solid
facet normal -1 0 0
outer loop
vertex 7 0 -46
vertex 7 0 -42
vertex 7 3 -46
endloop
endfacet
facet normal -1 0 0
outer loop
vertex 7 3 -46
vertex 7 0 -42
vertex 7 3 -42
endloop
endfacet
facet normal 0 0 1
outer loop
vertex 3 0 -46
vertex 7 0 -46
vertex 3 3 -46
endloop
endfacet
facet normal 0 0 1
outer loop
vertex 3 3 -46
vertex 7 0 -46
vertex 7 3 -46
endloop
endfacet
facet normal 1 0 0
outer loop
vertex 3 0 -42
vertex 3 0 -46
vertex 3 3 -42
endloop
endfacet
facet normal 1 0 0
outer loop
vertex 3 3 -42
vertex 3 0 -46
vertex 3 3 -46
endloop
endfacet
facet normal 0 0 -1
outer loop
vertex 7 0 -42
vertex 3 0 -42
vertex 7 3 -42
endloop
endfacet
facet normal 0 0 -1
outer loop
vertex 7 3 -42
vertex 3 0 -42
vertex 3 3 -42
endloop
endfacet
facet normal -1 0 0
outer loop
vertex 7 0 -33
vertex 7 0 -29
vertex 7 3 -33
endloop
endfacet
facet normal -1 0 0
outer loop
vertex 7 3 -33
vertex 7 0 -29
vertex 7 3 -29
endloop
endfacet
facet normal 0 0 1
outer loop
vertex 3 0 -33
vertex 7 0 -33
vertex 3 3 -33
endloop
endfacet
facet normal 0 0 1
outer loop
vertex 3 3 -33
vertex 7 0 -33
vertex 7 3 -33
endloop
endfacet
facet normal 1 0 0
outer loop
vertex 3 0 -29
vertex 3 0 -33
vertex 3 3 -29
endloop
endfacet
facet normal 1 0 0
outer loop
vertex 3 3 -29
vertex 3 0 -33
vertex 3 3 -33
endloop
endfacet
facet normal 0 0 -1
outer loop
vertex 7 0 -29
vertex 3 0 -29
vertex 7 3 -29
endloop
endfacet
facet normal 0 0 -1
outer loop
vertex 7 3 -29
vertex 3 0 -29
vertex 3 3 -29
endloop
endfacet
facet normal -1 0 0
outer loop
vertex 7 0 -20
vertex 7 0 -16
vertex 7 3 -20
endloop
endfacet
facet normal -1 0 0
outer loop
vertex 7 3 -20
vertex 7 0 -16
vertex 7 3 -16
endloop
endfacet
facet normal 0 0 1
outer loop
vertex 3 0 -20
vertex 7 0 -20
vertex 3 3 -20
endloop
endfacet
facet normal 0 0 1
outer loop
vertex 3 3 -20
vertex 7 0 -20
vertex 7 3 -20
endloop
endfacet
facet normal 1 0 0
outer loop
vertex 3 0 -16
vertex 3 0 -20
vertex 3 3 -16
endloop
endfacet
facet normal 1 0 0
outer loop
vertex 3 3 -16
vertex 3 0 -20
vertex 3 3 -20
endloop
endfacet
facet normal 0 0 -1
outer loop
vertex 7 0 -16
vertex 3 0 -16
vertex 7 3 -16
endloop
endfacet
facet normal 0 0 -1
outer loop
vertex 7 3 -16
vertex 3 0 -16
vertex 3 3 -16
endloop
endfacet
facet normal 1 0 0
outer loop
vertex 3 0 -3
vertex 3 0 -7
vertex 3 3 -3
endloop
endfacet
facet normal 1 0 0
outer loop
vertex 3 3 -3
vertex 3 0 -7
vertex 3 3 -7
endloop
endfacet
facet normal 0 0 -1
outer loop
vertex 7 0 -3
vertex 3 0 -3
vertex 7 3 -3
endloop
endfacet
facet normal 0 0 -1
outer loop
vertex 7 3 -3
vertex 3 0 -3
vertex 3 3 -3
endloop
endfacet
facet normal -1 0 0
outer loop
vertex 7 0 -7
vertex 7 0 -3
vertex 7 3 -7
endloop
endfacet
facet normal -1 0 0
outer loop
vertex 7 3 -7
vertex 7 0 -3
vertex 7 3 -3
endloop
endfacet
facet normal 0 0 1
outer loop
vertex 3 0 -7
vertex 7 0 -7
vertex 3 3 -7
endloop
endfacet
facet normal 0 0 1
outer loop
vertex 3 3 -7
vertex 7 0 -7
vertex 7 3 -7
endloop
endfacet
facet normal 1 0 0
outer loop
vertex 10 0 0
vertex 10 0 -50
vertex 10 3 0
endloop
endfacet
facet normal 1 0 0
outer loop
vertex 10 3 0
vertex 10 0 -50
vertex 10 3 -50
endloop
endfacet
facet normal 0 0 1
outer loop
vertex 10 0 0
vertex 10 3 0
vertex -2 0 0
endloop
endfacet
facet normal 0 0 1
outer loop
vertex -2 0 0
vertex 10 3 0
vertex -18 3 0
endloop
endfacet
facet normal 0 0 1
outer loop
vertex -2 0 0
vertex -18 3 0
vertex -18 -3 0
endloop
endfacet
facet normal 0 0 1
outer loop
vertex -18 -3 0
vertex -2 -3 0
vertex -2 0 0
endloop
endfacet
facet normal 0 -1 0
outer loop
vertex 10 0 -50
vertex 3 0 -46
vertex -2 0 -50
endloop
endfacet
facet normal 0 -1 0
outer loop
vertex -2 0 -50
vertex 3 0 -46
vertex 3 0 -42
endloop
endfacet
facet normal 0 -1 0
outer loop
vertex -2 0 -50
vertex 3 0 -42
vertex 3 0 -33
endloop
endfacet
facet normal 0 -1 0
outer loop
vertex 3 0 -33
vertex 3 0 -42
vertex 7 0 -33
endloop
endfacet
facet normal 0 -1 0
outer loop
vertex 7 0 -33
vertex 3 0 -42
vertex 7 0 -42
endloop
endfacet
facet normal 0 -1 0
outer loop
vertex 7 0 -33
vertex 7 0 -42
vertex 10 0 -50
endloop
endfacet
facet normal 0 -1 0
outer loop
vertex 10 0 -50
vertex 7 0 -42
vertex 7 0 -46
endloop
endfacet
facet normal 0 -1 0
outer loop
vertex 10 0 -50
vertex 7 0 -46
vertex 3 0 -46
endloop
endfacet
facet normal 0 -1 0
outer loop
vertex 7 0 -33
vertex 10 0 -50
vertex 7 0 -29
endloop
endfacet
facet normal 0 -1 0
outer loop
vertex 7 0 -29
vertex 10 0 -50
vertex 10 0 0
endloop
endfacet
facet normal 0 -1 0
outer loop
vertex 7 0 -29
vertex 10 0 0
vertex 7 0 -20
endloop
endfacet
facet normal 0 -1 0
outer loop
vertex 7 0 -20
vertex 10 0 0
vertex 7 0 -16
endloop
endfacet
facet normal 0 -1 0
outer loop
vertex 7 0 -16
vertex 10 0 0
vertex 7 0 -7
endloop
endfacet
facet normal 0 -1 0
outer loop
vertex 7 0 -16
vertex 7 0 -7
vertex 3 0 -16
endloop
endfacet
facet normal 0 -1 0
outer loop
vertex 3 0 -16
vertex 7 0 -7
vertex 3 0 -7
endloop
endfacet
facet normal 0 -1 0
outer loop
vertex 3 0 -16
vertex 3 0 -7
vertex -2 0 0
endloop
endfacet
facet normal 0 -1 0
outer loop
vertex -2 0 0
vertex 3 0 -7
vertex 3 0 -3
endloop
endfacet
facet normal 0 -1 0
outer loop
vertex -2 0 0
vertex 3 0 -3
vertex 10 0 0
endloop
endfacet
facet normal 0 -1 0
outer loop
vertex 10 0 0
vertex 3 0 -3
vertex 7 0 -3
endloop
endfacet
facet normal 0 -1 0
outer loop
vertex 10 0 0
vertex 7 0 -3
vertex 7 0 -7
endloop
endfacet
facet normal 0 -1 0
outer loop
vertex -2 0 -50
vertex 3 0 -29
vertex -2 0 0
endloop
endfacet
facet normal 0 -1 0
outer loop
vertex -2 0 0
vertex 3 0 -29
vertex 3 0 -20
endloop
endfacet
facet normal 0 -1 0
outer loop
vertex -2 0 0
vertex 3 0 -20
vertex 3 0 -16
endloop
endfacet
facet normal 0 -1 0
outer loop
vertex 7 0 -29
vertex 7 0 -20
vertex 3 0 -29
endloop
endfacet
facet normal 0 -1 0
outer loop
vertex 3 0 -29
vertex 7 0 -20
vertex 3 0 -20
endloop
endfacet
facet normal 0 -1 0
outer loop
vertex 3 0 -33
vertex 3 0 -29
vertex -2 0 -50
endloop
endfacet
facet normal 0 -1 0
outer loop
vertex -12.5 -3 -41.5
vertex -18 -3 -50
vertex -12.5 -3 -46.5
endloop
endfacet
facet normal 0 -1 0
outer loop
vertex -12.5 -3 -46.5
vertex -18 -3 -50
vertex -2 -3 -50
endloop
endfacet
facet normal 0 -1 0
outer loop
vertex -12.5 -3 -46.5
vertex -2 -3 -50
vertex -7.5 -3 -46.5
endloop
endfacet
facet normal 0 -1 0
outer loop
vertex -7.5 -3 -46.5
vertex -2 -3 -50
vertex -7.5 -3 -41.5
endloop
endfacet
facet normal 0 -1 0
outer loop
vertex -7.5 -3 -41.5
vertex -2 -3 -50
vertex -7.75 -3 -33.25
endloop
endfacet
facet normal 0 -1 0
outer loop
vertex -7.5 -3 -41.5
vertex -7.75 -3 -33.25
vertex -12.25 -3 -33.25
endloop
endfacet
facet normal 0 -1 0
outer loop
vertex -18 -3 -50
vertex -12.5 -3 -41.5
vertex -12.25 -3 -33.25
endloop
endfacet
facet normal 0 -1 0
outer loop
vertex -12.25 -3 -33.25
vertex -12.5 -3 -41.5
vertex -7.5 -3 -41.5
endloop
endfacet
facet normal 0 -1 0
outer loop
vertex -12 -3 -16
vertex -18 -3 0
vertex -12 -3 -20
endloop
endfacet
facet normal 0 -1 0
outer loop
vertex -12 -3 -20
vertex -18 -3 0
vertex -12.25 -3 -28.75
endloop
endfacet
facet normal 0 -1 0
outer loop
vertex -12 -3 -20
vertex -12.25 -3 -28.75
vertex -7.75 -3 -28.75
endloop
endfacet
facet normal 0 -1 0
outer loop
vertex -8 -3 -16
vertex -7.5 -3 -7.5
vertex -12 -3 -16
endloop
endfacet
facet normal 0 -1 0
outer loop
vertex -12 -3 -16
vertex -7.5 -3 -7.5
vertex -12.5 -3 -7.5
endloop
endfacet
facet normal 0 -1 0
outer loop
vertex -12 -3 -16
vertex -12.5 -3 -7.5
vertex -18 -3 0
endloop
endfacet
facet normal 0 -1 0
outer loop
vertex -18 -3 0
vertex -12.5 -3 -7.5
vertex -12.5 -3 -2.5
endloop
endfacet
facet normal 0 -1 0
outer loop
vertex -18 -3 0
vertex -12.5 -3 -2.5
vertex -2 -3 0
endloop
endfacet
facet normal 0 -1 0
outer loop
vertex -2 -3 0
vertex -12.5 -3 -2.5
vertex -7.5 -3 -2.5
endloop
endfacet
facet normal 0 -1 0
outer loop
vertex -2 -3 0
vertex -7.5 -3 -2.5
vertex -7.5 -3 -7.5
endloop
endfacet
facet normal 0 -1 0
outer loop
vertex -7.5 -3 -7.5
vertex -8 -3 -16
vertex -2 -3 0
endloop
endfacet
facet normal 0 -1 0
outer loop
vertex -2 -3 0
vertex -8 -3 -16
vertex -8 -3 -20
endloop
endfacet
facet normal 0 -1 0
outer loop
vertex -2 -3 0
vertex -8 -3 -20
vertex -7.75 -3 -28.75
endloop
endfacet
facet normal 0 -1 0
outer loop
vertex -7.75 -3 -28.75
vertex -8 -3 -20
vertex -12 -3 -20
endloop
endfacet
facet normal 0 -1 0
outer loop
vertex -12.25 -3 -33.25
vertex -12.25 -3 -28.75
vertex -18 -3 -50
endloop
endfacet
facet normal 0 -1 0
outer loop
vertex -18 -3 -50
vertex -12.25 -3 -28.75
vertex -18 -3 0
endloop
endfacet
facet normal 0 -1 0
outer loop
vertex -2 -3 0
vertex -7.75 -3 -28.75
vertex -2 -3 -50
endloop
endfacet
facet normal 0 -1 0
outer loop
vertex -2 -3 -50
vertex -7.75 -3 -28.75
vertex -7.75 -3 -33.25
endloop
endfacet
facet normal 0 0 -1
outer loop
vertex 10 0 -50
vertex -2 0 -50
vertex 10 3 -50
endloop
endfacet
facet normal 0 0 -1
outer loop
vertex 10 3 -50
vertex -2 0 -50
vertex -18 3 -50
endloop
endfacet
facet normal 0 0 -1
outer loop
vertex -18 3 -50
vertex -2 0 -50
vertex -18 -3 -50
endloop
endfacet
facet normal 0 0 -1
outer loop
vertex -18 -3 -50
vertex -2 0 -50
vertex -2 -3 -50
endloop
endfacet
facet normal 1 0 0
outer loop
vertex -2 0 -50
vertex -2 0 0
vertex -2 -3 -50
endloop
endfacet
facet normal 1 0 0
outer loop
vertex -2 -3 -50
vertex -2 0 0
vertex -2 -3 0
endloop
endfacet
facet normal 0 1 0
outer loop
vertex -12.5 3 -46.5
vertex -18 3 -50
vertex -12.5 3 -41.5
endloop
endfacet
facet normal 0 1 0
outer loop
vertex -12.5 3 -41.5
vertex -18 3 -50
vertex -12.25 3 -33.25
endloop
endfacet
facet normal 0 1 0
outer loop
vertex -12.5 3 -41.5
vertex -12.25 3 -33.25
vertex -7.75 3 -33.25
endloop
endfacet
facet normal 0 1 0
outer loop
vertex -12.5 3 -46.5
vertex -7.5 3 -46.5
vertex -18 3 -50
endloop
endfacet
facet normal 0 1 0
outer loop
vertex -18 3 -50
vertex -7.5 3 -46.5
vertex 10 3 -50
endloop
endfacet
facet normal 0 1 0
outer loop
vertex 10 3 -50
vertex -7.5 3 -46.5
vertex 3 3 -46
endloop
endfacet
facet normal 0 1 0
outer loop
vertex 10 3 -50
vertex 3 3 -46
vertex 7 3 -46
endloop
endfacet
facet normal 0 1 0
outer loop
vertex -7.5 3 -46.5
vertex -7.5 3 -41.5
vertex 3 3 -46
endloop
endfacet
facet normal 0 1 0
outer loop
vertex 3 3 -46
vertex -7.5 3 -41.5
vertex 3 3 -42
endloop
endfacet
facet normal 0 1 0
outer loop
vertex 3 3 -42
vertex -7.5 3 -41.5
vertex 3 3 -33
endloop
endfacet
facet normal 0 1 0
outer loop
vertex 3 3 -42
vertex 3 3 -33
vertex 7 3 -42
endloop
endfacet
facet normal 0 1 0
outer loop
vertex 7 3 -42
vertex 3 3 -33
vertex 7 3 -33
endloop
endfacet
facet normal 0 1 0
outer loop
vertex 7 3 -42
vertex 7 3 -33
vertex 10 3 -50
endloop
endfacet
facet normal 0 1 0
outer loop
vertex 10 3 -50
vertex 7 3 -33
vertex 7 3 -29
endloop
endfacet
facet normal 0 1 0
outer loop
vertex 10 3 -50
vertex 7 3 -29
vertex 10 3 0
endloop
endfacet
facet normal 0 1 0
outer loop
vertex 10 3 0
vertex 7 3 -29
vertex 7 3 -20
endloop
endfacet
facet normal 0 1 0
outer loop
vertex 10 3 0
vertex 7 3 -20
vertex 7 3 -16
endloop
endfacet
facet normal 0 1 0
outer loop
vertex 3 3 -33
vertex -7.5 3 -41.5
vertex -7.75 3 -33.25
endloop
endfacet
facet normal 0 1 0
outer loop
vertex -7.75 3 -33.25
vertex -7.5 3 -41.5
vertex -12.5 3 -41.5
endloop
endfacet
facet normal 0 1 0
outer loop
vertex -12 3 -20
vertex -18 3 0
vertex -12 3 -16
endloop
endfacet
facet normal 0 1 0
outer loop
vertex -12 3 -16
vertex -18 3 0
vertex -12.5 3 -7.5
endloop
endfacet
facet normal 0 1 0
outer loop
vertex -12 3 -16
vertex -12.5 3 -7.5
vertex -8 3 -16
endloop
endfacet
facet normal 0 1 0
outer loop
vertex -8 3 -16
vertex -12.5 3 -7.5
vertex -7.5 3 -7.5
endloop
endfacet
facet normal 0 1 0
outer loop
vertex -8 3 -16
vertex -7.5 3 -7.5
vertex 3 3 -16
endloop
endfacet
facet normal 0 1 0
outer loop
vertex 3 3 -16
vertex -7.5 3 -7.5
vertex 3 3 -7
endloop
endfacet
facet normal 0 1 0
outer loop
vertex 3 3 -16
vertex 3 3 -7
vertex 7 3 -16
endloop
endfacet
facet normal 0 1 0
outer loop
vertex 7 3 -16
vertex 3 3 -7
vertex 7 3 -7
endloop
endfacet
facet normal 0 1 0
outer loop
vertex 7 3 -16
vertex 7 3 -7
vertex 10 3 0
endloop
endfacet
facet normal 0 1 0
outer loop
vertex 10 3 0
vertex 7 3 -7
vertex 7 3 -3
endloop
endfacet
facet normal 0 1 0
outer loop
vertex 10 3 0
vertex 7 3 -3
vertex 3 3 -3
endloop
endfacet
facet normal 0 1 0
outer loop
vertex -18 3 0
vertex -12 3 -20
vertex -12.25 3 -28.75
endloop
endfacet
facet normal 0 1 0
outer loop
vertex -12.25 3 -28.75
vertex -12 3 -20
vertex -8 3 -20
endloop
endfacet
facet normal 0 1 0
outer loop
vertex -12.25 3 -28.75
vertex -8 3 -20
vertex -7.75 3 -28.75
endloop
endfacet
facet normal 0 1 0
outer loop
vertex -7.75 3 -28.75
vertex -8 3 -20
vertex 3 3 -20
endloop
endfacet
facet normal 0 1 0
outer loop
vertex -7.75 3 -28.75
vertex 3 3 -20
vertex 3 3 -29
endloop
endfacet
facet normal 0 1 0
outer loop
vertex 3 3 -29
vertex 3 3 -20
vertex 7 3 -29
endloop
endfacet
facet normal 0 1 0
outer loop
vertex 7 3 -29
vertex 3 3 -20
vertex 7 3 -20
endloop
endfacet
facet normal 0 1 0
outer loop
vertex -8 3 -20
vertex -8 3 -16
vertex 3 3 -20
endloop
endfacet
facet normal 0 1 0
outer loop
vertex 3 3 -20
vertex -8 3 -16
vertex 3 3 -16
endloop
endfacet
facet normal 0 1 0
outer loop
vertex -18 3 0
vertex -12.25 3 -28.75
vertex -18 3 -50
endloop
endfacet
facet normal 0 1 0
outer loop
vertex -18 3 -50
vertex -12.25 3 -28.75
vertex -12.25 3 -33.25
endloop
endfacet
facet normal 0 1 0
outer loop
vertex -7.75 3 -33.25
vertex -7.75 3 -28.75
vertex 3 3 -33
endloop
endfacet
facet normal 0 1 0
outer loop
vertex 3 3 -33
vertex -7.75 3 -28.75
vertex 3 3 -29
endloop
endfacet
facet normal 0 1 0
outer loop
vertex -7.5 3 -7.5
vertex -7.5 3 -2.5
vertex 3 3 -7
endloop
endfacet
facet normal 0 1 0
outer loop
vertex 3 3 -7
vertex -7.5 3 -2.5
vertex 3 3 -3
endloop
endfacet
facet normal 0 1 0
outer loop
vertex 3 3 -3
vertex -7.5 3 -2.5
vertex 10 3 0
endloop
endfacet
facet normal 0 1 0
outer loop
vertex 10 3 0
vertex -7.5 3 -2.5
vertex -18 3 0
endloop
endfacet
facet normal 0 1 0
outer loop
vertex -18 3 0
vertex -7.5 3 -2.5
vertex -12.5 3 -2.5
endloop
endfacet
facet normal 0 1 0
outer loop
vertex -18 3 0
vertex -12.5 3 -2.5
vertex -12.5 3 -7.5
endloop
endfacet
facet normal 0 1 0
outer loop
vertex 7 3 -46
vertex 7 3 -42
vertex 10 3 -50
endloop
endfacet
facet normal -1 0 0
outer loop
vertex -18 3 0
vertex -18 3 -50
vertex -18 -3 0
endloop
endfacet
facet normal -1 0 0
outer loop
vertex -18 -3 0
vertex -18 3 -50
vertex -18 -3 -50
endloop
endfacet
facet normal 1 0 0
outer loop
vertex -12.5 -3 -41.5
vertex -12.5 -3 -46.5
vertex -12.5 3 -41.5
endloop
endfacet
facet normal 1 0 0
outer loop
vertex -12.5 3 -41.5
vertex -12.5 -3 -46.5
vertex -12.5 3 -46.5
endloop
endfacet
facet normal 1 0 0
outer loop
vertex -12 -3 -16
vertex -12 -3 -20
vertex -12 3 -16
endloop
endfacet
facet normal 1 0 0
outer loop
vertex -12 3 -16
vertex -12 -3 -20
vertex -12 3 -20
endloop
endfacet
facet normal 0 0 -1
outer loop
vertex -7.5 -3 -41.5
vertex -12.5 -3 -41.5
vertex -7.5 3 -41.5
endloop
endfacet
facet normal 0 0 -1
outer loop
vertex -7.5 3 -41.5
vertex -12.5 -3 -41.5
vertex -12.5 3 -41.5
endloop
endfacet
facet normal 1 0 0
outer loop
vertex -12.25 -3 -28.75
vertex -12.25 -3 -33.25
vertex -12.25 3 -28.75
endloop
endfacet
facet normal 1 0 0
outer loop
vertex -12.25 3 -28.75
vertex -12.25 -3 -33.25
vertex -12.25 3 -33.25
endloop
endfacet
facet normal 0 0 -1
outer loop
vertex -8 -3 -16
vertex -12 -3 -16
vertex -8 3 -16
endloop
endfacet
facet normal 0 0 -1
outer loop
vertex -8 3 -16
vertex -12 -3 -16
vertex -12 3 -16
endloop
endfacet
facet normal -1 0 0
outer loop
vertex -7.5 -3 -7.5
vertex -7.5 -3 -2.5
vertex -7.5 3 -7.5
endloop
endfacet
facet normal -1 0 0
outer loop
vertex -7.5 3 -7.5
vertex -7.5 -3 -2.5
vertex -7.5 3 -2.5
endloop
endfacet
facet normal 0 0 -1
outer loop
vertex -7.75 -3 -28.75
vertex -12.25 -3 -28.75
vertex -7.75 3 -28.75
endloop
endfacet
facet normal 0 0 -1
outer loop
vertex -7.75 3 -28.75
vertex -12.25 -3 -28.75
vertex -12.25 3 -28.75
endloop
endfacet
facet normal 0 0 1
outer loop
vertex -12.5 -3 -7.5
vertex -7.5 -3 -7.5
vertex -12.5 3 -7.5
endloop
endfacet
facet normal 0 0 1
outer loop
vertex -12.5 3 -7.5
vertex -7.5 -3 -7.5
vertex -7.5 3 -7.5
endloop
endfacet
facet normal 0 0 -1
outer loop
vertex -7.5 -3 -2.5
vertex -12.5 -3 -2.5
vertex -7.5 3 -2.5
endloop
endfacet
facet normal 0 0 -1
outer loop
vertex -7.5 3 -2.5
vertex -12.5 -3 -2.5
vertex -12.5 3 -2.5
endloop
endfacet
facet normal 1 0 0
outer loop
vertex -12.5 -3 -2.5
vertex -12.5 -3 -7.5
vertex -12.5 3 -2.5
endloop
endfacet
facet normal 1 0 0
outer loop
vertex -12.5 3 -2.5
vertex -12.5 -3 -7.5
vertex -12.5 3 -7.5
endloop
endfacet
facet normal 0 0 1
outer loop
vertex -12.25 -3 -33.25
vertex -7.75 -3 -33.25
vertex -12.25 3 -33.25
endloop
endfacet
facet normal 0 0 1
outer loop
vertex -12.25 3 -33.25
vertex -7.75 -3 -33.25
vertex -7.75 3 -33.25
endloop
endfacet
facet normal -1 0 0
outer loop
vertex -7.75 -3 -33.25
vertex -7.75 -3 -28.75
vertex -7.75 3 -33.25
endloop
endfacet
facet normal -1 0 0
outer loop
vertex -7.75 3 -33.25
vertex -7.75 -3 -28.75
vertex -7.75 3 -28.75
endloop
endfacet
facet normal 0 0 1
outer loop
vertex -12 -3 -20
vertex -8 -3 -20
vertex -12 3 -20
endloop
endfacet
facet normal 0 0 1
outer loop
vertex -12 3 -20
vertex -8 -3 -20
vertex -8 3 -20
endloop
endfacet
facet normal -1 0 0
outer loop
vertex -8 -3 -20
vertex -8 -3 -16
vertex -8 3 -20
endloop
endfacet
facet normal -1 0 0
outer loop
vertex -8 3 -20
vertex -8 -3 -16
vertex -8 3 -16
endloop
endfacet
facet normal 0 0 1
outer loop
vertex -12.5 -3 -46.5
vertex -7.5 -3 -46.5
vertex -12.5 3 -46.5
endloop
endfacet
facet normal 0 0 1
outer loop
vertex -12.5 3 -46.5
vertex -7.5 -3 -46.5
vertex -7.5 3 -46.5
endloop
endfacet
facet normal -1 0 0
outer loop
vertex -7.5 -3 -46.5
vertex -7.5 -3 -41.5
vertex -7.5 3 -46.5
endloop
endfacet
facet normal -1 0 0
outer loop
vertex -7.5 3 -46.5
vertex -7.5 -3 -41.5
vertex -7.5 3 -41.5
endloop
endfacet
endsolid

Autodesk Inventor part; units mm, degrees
ref_plane "YZ Plane" through (0, 0, 0) normal (1, 0, 0) x (0, 1, 0)
ref_plane "XZ Plane" through (0, 0, 0) normal (0, 1, 0) x (-1, 0, 0)
ref_plane "XY Plane" through (0, 0, 0) normal (0, 0, 1) x (1, 0, 0)
sketch "Sketch1" plane through (0, 0, 0) normal (0, 1, 0) x (-1, 0, 0)
  line L0 (0, 0) -> (0, -50)
  line L1 (0, -50) -> (-10, -50)
  line L2 (-10, -50) -> (-10, 0)
  line L3 (-10, 0) -> (0, 0)
  line L4 (-5, -50) -> (-5, -46)
  line L5 (-5, -46) -> (-3, -46)
  line L6 (-3, -46) -> (-3, -42)
  line L7 (-3, -42) -> (-7, -42)
  line L8 (-7, -42) -> (-7, -46)
  line L9 (-7, -46) -> (-5, -46)
  line L10 (-5, -42) -> (-5, -33)
  line L11 (-5, -33) -> (-7, -33)
  line L12 (-7, -33) -> (-7, -29)
  line L13 (-7, -29) -> (-3, -29)
  line L14 (-3, -29) -> (-3, -33)
  line L15 (-5, -33) -> (-3, -33)
  line L16 (-5, -29) -> (-5, -20)
  line L17 (-5, -20) -> (-3, -20)
  line L18 (-3, -20) -> (-3, -16)
  line L19 (-3, -16) -> (-7, -16)
  line L20 (-7, -16) -> (-7, -20)
  line L21 (-5, -20) -> (-7, -20)
  line L22 (-5, -16) -> (-5, -7)
  line L23 (-5, -7) -> (-7, -7)
  line L24 (-7, -7) -> (-7, -3)
  line L25 (-7, -3) -> (-3, -3)
  line L26 (-5, -7) -> (-3, -7)
  line L27 (-3, -7) -> (-3, -3)
  line L28 (0, -50) -> (2, -50)
  line L29 (2, -50) -> (2, 0)
  line L30 (2, 0) -> (0, 0)
  dimension "d0" = 50
  dimension "d1" = 10
  dimension "d2" = 90
  dimension "d3" = 4
  dimension "d4" = 2
  dimension "d5" = 4
  dimension "d6" = 4
  dimension "d7" = 9
  dimension "d8" = 4
  dimension "d9" = 9
  dimension "d10" = 4
  dimension "d11" = 9
  dimension "d12" = 4
  dimension "d13" = 2
extrude "Extrusion1" add sketch "Sketch1" along normal blind 3
sketch "Sketch2" plane through (-2, 0, -50) normal (-1, 0, 0) x (0, 0, 1)
  line L0 (0, 0) -> (0, 3) projected
  line L1 (0, 3) -> (50, 3)
  line L2 (50, 3) -> (50, -3)
  line L3 (50, -3) -> (0, -3)
  line L4 (0, -3) -> (0, 3)
  point P0 (50, 0)
  dimension "d16" = 6
extrude "Extrusion2" add sketch "Sketch2" along normal blind 16
sketch "Sketch3" plane through (0, 3, 0) normal (0, 1, 0) x (1, 0, 0)
  line L0 (-2, 0) -> (-18, 0) projected
  line L1 (-10, 0) -> (-10, 50)
  line L2 (10, 50) -> (-18, 50) projected
  line L3 (-12.5, 41.5) -> (-7.5, 41.5)
  line L4 (-7.5, 41.5) -> (-7.5, 46.5)
  line L5 (-7.5, 46.5) -> (-12.5, 46.5)
  line L6 (-12.5, 46.5) -> (-12.5, 41.5)
  line L7 (-12.5, 41.5) -> (-7.5, 46.5) construction
  line L8 (-7.5, 41.5) -> (-12.5, 46.5) construction
  line L9 (-12.5, 2.5) -> (-7.5, 2.5)
  line L10 (-7.5, 2.5) -> (-7.5, 7.5)
  line L11 (-7.5, 7.5) -> (-12.5, 7.5)
  line L12 (-12.5, 7.5) -> (-12.5, 2.5)
  line L13 (-12.5, 2.5) -> (-7.5, 7.5) construction
  line L14 (-7.5, 2.5) -> (-12.5, 7.5) construction
  line L15 (-12, 16) -> (-8, 16)
  line L16 (-8, 16) -> (-8, 20)
  line L17 (-8, 20) -> (-12, 20)
  line L18 (-12, 20) -> (-12, 16)
  line L19 (-12, 16) -> (-8, 20) construction
  line L20 (-8, 16) -> (-12, 20) construction
  line L21 (-12.25, 28.75) -> (-7.75, 28.75)
  line L22 (-7.75, 28.75) -> (-7.75, 33.25)
  line L23 (-7.75, 33.25) -> (-12.25, 33.25)
  line L24 (-12.25, 33.25) -> (-12.25, 28.75)
  line L25 (-12.25, 28.75) -> (-7.75, 33.25) construction
  line L26 (-7.75, 28.75) -> (-12.25, 33.25) construction
  point P0 (0, 0)
  point P1 (-10, 44)
  point P2 (-10, 5)
  point P3 (-10, 18)
  point P4 (-10, 31)
  dimension "d19" = 5
  dimension "d20" = 5
  dimension "d21" = 5
  dimension "d22" = 5
  dimension "d23" = 4
  dimension "d24" = 4
  dimension "d25" = 4.5
  dimension "d26" = 4.5
extrude "Extrusion3" cut sketch "Sketch3" against normal blind 16
sketch "Sketch4" plane through (-2, -3, -50) normal (0, -1, 0) x (1, 0, 0)
  point P0 (2, 50)
equation "\"BendRadius\" = Thickness"
equation "\"BendReliefWidth\" = Thickness"
equation "\"BendReliefDepth\" = 0.5 * Thickness"
equation "\"CornerReliefSize\" = 4 * Thickness"
equation "\"MinimumRemnant\" = 2 * Thickness"
equation "\"TransitionRadius\" = BendRadius"
equation "\"JacobiRadiusSize\" = BendRadius"
equation "\"GapSize\" = Thickness"
equation "\"Thickness\" = 0.5"
